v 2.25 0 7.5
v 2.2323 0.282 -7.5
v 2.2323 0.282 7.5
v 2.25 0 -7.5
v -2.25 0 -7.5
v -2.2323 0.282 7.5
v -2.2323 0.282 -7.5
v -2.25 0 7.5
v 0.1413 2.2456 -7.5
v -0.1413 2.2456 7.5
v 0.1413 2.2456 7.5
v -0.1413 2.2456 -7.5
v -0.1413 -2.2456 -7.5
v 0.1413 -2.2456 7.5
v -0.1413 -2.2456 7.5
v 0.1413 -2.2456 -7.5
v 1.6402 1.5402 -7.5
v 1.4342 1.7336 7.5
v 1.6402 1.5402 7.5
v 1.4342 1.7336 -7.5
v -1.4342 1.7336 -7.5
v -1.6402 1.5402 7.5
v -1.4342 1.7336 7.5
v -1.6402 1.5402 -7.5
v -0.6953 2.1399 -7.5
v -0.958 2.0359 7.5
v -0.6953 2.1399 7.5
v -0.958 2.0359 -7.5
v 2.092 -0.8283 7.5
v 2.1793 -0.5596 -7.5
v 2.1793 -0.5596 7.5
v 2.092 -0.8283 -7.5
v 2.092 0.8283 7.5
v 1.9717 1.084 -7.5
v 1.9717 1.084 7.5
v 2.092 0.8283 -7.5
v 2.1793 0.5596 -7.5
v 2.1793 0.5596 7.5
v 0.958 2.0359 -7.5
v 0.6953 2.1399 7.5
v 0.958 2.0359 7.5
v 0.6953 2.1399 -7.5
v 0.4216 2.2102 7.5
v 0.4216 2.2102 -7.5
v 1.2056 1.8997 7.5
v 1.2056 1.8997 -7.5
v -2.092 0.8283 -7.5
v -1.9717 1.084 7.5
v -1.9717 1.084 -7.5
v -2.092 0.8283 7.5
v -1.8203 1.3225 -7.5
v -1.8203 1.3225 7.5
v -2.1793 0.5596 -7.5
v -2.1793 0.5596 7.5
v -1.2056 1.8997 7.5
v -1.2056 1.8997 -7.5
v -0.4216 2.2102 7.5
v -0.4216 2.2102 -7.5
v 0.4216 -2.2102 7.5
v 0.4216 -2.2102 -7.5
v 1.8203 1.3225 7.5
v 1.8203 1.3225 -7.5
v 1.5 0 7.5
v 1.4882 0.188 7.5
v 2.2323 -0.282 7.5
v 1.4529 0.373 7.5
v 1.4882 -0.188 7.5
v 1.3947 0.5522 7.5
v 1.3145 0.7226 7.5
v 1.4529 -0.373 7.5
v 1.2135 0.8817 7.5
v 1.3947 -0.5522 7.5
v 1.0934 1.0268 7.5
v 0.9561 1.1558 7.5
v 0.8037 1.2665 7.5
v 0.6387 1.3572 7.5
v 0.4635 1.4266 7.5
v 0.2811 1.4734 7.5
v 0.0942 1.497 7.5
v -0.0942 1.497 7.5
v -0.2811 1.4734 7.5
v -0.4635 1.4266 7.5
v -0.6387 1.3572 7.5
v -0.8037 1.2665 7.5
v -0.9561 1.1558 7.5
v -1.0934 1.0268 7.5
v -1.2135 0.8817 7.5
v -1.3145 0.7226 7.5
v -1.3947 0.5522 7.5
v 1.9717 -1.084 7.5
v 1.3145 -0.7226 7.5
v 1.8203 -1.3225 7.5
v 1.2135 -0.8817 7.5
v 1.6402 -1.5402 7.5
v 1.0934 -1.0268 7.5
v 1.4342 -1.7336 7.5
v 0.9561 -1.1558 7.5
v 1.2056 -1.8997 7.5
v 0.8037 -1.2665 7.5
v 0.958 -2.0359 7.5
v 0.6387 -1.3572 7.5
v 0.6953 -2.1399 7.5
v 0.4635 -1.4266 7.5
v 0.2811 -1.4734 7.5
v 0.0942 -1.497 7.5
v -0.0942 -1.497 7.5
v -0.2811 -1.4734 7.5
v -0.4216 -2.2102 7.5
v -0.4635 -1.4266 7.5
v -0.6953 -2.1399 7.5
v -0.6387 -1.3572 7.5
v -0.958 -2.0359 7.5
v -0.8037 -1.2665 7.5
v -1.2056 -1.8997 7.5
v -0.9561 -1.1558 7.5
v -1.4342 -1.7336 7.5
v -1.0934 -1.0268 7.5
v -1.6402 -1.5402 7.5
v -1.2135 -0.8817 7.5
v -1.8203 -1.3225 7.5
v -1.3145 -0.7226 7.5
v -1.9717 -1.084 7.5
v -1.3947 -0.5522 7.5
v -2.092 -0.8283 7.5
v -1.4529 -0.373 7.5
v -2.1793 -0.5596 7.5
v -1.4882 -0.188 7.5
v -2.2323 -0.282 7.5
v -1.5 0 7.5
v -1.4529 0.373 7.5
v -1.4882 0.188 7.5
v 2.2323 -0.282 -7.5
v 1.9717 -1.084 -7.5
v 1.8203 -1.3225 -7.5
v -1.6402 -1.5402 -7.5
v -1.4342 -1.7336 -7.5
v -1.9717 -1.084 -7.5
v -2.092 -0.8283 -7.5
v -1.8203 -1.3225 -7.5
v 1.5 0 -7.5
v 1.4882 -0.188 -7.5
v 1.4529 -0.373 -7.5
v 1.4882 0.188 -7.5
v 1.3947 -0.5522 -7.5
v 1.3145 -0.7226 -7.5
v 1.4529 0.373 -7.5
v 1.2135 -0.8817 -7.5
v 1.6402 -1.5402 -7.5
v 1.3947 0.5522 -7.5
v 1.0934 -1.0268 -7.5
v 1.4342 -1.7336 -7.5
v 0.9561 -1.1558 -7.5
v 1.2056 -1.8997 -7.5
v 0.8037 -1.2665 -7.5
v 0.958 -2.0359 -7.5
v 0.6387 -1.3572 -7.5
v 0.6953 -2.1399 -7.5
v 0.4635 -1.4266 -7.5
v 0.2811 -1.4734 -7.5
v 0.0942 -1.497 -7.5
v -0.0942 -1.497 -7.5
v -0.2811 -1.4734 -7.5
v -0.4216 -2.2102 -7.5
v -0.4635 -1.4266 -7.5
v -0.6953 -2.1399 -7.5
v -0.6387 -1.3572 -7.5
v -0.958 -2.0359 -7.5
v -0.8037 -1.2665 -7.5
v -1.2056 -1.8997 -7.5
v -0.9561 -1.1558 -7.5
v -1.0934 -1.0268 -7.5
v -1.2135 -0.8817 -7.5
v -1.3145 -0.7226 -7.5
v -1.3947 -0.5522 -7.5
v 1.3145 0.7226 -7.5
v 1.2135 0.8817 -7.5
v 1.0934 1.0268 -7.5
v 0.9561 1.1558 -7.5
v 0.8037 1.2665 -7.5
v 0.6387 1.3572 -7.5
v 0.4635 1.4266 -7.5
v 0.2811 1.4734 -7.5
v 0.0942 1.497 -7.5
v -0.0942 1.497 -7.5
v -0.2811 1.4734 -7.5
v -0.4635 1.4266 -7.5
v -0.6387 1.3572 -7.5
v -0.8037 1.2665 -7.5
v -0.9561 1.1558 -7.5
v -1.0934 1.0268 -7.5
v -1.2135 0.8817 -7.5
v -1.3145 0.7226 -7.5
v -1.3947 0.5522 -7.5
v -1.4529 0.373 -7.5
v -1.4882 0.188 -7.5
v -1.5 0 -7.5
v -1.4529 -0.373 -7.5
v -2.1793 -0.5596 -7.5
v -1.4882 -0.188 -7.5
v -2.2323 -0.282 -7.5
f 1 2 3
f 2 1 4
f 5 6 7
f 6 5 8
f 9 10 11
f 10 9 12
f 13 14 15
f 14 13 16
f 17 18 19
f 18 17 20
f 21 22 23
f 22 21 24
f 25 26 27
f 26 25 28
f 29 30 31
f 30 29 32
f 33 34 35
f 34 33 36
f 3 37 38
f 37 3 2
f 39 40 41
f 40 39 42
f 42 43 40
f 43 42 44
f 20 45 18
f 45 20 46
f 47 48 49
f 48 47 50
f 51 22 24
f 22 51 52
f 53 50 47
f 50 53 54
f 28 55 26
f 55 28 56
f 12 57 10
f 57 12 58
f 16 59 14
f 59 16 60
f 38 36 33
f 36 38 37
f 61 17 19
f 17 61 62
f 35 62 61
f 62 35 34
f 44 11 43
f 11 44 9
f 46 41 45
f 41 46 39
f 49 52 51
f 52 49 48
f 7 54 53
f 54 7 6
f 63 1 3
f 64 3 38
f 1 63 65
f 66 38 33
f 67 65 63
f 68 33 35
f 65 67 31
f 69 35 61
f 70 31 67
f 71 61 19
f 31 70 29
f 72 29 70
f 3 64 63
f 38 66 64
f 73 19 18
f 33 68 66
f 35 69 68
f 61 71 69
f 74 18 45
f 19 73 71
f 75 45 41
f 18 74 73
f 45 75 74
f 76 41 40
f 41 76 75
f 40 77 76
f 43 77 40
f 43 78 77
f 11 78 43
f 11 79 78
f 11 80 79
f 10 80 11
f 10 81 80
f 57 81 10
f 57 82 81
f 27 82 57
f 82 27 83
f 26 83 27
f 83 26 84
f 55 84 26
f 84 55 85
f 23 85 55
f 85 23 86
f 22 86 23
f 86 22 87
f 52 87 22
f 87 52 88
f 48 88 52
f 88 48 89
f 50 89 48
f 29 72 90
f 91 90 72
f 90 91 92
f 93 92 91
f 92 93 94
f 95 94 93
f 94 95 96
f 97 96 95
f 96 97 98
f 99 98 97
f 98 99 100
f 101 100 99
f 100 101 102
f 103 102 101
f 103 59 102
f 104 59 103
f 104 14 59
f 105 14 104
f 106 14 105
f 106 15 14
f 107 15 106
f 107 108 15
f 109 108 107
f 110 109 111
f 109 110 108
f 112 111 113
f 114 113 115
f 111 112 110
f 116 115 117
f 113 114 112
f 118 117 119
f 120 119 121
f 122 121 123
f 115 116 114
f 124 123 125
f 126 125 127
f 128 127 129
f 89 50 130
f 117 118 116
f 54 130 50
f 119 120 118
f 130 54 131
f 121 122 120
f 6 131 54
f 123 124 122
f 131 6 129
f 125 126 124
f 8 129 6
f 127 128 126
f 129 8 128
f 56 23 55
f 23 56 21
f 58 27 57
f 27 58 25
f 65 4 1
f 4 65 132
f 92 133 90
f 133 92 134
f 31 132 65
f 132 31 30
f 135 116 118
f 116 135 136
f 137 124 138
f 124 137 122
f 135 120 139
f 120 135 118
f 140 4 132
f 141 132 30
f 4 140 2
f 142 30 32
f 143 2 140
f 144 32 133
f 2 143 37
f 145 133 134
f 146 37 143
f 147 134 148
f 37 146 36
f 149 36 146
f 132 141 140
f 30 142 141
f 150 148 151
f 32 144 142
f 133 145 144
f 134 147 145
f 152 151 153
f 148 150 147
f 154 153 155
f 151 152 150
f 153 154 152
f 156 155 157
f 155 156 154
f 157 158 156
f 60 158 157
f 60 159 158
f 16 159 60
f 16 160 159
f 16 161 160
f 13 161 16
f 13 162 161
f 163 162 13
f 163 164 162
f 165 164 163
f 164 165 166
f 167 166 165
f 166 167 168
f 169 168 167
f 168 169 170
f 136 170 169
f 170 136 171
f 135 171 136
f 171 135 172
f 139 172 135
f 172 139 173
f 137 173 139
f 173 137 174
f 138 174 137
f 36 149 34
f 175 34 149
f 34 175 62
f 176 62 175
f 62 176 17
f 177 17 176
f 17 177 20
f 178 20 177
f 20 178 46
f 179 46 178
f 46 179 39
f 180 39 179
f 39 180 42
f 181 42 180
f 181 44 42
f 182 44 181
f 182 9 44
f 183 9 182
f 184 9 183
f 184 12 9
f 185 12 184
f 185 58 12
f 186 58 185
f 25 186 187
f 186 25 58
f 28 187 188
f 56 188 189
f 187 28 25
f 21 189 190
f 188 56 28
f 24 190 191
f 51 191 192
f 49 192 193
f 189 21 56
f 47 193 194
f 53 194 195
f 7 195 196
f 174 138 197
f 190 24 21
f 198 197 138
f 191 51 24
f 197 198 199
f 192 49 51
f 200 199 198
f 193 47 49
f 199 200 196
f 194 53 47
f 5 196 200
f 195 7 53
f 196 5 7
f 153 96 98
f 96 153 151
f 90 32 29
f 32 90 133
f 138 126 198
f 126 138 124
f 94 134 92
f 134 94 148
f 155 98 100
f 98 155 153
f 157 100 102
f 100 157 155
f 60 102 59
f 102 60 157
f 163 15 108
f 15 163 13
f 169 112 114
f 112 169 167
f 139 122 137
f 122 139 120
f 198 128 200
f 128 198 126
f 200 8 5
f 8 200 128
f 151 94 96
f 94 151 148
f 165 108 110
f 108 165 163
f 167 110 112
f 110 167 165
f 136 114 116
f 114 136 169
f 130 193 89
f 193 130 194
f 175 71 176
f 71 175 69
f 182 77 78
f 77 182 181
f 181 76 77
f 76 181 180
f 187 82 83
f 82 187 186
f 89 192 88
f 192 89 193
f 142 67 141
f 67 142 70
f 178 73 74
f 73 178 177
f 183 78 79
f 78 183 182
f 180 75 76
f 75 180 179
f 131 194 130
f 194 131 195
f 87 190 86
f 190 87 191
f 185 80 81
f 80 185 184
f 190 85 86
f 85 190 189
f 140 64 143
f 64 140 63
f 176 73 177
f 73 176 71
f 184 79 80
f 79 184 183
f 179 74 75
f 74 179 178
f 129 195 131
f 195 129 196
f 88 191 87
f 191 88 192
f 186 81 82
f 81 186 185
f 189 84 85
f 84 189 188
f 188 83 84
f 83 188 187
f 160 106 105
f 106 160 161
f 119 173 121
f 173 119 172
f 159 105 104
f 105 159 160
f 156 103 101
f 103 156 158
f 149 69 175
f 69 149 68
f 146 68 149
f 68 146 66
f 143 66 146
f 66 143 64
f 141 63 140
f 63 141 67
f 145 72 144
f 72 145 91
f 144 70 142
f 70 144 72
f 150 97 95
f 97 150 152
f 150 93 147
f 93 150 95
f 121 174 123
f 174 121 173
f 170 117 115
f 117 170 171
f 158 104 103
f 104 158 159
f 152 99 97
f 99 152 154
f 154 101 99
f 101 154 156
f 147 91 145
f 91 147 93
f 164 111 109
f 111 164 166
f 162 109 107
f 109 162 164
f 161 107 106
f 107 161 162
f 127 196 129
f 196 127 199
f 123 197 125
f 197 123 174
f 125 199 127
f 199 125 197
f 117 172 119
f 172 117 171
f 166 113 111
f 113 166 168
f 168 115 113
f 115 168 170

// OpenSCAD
$fn = 50;


difference() {
	union() {
		translate(v = [0, 0, -7.5000000000]) {
			cylinder(h = 15, r = 2.2500000000);
		}
	}
	union() {
		translate(v = [0, 0, -100.0000000000]) {
			cylinder(h = 200, r = 1.5000000000);
		}
	}
}
